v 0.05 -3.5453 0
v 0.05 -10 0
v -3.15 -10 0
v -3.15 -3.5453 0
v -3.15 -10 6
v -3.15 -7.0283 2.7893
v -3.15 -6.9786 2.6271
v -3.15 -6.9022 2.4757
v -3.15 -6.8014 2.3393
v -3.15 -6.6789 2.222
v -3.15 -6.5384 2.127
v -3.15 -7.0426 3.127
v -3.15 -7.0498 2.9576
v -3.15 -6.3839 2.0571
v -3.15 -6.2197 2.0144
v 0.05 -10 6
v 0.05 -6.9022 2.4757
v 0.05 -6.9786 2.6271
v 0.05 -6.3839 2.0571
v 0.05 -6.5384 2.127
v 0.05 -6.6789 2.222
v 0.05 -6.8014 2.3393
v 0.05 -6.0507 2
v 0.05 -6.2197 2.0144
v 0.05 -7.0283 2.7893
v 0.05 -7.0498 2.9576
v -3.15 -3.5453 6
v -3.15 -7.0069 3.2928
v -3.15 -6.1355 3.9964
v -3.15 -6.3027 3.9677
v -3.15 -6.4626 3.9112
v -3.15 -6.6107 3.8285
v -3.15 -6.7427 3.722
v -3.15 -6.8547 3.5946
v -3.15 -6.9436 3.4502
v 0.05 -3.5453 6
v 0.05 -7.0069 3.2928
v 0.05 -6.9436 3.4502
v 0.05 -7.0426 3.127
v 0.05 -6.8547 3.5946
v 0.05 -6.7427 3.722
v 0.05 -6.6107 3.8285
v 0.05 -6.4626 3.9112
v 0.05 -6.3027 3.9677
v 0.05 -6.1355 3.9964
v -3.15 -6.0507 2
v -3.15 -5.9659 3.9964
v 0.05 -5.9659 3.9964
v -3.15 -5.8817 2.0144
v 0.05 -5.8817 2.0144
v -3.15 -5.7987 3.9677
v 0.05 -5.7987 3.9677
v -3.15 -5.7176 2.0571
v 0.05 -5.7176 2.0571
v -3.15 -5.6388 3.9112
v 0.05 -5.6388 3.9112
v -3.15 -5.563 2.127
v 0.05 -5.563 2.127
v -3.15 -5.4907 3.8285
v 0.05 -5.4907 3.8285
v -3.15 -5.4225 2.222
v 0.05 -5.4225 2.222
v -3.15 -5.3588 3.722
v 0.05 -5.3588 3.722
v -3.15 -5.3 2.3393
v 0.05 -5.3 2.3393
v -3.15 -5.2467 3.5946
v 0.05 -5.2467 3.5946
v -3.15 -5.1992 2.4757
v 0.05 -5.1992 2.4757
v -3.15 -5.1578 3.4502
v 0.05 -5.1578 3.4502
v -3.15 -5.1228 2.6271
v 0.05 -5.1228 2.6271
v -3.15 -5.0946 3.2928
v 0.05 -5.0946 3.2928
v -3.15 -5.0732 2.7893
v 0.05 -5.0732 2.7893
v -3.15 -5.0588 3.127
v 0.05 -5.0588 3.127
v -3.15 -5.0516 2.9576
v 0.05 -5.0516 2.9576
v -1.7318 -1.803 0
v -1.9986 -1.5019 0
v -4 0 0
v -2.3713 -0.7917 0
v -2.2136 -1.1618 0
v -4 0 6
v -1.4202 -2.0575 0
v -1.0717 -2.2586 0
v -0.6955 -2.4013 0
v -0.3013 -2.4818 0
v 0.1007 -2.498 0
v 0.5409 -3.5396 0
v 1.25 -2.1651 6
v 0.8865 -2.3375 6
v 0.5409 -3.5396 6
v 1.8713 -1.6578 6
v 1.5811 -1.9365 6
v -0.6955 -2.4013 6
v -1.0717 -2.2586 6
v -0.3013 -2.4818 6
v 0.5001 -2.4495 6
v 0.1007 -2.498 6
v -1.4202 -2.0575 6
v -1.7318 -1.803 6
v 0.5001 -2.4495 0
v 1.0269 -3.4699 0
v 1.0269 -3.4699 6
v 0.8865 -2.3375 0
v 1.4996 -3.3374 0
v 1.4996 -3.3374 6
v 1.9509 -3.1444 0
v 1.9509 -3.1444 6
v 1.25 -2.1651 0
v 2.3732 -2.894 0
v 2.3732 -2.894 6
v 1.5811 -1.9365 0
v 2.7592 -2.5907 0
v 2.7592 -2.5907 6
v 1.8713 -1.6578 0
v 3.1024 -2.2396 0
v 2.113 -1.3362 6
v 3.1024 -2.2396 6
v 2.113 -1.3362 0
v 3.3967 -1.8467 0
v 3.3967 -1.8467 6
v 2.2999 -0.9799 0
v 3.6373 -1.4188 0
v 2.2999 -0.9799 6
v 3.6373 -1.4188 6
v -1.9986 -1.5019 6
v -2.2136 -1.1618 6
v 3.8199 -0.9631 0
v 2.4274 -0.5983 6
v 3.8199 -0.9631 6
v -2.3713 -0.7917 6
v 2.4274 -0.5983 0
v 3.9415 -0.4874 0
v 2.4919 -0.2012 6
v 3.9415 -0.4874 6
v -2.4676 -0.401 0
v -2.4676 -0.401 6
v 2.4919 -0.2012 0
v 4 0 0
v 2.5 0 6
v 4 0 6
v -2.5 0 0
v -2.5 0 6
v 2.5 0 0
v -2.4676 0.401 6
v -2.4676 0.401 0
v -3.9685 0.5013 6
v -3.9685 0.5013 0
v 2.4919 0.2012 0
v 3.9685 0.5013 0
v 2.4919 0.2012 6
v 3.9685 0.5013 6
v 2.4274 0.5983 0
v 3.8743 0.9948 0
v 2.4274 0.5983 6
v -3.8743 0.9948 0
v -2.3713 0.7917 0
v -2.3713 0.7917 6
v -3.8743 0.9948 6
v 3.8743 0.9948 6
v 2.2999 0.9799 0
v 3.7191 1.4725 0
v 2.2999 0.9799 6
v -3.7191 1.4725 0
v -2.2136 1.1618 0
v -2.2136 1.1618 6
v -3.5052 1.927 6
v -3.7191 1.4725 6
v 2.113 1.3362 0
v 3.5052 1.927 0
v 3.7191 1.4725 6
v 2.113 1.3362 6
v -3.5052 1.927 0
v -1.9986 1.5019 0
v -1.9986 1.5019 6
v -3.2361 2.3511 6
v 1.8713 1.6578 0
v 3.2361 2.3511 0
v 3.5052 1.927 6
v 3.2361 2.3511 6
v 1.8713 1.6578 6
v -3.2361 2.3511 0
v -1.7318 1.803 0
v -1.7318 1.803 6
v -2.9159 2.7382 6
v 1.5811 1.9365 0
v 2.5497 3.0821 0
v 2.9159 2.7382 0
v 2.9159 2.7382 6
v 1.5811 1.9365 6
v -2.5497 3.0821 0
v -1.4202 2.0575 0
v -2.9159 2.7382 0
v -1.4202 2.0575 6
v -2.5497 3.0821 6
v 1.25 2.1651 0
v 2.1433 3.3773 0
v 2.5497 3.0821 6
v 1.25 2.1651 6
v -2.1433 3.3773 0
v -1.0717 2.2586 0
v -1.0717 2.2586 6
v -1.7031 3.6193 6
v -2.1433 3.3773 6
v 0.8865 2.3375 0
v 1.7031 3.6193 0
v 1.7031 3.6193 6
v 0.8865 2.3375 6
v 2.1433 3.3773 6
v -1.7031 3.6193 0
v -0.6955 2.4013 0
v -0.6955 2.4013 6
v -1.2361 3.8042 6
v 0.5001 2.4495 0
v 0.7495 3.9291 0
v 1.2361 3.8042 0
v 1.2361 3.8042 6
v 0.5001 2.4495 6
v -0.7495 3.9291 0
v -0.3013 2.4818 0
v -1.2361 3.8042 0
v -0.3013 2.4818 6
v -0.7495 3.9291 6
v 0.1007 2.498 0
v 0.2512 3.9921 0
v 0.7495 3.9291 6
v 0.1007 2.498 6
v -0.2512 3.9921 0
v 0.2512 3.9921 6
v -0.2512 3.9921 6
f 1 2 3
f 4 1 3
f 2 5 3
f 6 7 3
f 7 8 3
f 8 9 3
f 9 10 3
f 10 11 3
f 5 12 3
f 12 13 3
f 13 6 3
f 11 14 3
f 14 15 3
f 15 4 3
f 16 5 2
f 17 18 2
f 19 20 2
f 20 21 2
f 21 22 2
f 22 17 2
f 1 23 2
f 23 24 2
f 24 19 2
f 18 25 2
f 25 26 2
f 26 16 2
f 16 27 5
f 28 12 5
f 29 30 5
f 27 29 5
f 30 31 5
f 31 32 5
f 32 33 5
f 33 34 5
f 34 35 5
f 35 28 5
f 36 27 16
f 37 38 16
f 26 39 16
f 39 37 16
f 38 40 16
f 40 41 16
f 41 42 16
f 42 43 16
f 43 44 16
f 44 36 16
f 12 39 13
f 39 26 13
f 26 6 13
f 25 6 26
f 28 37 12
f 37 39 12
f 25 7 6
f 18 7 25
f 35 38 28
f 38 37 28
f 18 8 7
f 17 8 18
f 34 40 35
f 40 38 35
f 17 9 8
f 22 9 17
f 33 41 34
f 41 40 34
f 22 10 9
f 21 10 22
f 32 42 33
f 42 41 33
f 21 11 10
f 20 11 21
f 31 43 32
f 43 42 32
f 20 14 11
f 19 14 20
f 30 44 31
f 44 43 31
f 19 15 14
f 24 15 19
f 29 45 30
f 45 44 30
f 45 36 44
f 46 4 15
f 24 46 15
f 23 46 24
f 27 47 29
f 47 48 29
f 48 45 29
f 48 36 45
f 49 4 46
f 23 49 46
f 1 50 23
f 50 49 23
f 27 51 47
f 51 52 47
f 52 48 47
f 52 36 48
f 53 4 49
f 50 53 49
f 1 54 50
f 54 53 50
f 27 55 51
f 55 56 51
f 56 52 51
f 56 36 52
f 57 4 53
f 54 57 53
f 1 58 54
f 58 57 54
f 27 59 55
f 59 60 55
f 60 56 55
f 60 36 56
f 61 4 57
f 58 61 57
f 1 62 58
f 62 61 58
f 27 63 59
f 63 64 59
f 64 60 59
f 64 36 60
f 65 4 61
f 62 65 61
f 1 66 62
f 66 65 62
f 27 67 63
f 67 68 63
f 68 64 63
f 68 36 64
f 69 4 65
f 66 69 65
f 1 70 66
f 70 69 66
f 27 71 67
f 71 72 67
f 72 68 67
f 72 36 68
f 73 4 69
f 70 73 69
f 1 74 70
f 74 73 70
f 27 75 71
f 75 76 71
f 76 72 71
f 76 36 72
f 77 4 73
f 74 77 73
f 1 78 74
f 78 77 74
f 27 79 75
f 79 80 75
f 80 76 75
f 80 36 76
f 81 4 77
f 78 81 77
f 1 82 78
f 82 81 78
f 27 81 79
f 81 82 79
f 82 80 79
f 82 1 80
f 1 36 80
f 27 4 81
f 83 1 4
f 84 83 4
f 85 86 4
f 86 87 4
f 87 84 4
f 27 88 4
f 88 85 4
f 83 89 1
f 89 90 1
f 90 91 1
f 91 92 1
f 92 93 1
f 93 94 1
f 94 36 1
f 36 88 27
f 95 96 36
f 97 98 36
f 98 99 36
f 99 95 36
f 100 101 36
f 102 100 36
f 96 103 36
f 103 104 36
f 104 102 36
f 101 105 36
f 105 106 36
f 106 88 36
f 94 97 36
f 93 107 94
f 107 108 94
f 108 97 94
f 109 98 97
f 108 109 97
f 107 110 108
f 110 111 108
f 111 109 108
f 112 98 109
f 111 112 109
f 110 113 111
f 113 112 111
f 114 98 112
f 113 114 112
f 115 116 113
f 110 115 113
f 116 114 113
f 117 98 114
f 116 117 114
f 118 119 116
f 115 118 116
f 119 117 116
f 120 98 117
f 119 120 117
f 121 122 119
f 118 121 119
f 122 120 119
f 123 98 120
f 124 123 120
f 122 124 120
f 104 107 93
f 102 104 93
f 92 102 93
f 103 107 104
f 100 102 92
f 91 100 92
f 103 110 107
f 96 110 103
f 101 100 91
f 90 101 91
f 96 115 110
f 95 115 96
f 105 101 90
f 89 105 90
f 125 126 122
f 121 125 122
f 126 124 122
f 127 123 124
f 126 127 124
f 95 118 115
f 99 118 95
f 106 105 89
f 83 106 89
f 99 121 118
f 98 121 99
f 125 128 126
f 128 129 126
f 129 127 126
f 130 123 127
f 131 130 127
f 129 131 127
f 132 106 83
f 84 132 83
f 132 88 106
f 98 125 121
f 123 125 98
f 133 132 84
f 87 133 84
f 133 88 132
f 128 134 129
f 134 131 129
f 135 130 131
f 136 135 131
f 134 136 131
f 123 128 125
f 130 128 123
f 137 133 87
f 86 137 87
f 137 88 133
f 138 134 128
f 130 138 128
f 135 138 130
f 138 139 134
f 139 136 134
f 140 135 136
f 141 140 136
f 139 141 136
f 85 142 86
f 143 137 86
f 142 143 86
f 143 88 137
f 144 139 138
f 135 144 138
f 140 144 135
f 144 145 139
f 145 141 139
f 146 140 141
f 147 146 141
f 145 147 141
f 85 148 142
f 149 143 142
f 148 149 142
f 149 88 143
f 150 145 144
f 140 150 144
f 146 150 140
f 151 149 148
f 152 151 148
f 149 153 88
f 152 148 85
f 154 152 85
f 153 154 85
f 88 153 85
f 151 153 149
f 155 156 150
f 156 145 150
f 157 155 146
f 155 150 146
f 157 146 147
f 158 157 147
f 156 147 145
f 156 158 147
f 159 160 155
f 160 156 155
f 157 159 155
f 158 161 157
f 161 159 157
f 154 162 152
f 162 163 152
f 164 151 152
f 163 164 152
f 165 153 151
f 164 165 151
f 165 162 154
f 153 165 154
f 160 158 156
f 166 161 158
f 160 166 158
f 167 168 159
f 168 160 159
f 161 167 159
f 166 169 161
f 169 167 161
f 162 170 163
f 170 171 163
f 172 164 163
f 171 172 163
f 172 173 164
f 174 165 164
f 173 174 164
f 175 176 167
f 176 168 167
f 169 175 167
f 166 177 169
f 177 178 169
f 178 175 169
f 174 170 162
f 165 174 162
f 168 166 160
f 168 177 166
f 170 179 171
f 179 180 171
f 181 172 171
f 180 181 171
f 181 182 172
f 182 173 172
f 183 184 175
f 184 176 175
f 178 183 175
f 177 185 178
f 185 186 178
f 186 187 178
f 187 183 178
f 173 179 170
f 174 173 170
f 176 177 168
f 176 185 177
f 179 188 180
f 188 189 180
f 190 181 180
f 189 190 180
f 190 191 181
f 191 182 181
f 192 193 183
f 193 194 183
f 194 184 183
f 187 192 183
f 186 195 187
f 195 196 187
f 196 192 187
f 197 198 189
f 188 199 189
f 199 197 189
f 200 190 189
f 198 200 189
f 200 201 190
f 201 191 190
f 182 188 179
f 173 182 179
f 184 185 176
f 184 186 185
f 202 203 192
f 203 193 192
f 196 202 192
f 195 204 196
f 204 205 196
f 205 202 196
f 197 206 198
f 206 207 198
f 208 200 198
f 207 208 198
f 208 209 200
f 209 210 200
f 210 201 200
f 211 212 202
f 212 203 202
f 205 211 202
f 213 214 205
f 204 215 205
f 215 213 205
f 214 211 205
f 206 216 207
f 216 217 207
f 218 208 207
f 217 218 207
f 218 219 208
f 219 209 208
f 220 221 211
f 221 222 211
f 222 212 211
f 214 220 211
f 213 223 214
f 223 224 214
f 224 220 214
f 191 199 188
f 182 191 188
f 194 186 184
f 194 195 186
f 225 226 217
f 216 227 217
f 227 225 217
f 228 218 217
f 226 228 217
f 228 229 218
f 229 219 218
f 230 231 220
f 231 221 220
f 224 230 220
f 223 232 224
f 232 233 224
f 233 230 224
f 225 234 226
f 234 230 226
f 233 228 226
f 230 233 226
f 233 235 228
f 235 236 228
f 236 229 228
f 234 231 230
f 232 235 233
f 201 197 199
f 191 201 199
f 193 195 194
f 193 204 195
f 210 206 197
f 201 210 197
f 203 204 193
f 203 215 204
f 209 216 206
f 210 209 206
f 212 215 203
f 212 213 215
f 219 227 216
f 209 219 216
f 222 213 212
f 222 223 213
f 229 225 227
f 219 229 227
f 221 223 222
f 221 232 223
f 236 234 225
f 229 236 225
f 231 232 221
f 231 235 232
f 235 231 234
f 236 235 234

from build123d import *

# Parameters (mm, degrees)
CROQUIS1_R              = 2.5
SALIENTE_EXTRUIR1_DEPTH = 6
CROQUIS4_R              = 1
CORTAR_EXTRUIR2_DEPTH   = 3.2


with BuildPart() as part:
    # Croquis1 → Saliente-Extruir1 (new body)
    with BuildSketch(Plane.XY):
        with BuildLine():
            Line((-3.15, -10), (-3.15, -3.545259156))
            Line((-3.15, -3.545259156), (-4, 0))
            ThreePointArc((-4, 0), (0, 4), (4, 0))
            ThreePointArc((4, 0), (2.759247212, -2.590701364), (0.05, -3.545259156))
            Line((0.05, -3.545259156), (0.05, -10))
            Line((0.05, -10), (-3.15, -10))
        make_face()
        Circle(CROQUIS1_R, mode=Mode.SUBTRACT)
    extrude(amount=SALIENTE_EXTRUIR1_DEPTH)

    # Croquis4 → Cortar-Extruir2 (cut)
    with BuildSketch(Plane(origin=(0.05, 0, 0), x_dir=(0, 0, -1), z_dir=(1, 0, 0))):
        with Locations((-3, -6.050719138)):
            Circle(CROQUIS4_R)
    extrude(amount=-CORTAR_EXTRUIR2_DEPTH, mode=Mode.SUBTRACT)


solid = part.part
